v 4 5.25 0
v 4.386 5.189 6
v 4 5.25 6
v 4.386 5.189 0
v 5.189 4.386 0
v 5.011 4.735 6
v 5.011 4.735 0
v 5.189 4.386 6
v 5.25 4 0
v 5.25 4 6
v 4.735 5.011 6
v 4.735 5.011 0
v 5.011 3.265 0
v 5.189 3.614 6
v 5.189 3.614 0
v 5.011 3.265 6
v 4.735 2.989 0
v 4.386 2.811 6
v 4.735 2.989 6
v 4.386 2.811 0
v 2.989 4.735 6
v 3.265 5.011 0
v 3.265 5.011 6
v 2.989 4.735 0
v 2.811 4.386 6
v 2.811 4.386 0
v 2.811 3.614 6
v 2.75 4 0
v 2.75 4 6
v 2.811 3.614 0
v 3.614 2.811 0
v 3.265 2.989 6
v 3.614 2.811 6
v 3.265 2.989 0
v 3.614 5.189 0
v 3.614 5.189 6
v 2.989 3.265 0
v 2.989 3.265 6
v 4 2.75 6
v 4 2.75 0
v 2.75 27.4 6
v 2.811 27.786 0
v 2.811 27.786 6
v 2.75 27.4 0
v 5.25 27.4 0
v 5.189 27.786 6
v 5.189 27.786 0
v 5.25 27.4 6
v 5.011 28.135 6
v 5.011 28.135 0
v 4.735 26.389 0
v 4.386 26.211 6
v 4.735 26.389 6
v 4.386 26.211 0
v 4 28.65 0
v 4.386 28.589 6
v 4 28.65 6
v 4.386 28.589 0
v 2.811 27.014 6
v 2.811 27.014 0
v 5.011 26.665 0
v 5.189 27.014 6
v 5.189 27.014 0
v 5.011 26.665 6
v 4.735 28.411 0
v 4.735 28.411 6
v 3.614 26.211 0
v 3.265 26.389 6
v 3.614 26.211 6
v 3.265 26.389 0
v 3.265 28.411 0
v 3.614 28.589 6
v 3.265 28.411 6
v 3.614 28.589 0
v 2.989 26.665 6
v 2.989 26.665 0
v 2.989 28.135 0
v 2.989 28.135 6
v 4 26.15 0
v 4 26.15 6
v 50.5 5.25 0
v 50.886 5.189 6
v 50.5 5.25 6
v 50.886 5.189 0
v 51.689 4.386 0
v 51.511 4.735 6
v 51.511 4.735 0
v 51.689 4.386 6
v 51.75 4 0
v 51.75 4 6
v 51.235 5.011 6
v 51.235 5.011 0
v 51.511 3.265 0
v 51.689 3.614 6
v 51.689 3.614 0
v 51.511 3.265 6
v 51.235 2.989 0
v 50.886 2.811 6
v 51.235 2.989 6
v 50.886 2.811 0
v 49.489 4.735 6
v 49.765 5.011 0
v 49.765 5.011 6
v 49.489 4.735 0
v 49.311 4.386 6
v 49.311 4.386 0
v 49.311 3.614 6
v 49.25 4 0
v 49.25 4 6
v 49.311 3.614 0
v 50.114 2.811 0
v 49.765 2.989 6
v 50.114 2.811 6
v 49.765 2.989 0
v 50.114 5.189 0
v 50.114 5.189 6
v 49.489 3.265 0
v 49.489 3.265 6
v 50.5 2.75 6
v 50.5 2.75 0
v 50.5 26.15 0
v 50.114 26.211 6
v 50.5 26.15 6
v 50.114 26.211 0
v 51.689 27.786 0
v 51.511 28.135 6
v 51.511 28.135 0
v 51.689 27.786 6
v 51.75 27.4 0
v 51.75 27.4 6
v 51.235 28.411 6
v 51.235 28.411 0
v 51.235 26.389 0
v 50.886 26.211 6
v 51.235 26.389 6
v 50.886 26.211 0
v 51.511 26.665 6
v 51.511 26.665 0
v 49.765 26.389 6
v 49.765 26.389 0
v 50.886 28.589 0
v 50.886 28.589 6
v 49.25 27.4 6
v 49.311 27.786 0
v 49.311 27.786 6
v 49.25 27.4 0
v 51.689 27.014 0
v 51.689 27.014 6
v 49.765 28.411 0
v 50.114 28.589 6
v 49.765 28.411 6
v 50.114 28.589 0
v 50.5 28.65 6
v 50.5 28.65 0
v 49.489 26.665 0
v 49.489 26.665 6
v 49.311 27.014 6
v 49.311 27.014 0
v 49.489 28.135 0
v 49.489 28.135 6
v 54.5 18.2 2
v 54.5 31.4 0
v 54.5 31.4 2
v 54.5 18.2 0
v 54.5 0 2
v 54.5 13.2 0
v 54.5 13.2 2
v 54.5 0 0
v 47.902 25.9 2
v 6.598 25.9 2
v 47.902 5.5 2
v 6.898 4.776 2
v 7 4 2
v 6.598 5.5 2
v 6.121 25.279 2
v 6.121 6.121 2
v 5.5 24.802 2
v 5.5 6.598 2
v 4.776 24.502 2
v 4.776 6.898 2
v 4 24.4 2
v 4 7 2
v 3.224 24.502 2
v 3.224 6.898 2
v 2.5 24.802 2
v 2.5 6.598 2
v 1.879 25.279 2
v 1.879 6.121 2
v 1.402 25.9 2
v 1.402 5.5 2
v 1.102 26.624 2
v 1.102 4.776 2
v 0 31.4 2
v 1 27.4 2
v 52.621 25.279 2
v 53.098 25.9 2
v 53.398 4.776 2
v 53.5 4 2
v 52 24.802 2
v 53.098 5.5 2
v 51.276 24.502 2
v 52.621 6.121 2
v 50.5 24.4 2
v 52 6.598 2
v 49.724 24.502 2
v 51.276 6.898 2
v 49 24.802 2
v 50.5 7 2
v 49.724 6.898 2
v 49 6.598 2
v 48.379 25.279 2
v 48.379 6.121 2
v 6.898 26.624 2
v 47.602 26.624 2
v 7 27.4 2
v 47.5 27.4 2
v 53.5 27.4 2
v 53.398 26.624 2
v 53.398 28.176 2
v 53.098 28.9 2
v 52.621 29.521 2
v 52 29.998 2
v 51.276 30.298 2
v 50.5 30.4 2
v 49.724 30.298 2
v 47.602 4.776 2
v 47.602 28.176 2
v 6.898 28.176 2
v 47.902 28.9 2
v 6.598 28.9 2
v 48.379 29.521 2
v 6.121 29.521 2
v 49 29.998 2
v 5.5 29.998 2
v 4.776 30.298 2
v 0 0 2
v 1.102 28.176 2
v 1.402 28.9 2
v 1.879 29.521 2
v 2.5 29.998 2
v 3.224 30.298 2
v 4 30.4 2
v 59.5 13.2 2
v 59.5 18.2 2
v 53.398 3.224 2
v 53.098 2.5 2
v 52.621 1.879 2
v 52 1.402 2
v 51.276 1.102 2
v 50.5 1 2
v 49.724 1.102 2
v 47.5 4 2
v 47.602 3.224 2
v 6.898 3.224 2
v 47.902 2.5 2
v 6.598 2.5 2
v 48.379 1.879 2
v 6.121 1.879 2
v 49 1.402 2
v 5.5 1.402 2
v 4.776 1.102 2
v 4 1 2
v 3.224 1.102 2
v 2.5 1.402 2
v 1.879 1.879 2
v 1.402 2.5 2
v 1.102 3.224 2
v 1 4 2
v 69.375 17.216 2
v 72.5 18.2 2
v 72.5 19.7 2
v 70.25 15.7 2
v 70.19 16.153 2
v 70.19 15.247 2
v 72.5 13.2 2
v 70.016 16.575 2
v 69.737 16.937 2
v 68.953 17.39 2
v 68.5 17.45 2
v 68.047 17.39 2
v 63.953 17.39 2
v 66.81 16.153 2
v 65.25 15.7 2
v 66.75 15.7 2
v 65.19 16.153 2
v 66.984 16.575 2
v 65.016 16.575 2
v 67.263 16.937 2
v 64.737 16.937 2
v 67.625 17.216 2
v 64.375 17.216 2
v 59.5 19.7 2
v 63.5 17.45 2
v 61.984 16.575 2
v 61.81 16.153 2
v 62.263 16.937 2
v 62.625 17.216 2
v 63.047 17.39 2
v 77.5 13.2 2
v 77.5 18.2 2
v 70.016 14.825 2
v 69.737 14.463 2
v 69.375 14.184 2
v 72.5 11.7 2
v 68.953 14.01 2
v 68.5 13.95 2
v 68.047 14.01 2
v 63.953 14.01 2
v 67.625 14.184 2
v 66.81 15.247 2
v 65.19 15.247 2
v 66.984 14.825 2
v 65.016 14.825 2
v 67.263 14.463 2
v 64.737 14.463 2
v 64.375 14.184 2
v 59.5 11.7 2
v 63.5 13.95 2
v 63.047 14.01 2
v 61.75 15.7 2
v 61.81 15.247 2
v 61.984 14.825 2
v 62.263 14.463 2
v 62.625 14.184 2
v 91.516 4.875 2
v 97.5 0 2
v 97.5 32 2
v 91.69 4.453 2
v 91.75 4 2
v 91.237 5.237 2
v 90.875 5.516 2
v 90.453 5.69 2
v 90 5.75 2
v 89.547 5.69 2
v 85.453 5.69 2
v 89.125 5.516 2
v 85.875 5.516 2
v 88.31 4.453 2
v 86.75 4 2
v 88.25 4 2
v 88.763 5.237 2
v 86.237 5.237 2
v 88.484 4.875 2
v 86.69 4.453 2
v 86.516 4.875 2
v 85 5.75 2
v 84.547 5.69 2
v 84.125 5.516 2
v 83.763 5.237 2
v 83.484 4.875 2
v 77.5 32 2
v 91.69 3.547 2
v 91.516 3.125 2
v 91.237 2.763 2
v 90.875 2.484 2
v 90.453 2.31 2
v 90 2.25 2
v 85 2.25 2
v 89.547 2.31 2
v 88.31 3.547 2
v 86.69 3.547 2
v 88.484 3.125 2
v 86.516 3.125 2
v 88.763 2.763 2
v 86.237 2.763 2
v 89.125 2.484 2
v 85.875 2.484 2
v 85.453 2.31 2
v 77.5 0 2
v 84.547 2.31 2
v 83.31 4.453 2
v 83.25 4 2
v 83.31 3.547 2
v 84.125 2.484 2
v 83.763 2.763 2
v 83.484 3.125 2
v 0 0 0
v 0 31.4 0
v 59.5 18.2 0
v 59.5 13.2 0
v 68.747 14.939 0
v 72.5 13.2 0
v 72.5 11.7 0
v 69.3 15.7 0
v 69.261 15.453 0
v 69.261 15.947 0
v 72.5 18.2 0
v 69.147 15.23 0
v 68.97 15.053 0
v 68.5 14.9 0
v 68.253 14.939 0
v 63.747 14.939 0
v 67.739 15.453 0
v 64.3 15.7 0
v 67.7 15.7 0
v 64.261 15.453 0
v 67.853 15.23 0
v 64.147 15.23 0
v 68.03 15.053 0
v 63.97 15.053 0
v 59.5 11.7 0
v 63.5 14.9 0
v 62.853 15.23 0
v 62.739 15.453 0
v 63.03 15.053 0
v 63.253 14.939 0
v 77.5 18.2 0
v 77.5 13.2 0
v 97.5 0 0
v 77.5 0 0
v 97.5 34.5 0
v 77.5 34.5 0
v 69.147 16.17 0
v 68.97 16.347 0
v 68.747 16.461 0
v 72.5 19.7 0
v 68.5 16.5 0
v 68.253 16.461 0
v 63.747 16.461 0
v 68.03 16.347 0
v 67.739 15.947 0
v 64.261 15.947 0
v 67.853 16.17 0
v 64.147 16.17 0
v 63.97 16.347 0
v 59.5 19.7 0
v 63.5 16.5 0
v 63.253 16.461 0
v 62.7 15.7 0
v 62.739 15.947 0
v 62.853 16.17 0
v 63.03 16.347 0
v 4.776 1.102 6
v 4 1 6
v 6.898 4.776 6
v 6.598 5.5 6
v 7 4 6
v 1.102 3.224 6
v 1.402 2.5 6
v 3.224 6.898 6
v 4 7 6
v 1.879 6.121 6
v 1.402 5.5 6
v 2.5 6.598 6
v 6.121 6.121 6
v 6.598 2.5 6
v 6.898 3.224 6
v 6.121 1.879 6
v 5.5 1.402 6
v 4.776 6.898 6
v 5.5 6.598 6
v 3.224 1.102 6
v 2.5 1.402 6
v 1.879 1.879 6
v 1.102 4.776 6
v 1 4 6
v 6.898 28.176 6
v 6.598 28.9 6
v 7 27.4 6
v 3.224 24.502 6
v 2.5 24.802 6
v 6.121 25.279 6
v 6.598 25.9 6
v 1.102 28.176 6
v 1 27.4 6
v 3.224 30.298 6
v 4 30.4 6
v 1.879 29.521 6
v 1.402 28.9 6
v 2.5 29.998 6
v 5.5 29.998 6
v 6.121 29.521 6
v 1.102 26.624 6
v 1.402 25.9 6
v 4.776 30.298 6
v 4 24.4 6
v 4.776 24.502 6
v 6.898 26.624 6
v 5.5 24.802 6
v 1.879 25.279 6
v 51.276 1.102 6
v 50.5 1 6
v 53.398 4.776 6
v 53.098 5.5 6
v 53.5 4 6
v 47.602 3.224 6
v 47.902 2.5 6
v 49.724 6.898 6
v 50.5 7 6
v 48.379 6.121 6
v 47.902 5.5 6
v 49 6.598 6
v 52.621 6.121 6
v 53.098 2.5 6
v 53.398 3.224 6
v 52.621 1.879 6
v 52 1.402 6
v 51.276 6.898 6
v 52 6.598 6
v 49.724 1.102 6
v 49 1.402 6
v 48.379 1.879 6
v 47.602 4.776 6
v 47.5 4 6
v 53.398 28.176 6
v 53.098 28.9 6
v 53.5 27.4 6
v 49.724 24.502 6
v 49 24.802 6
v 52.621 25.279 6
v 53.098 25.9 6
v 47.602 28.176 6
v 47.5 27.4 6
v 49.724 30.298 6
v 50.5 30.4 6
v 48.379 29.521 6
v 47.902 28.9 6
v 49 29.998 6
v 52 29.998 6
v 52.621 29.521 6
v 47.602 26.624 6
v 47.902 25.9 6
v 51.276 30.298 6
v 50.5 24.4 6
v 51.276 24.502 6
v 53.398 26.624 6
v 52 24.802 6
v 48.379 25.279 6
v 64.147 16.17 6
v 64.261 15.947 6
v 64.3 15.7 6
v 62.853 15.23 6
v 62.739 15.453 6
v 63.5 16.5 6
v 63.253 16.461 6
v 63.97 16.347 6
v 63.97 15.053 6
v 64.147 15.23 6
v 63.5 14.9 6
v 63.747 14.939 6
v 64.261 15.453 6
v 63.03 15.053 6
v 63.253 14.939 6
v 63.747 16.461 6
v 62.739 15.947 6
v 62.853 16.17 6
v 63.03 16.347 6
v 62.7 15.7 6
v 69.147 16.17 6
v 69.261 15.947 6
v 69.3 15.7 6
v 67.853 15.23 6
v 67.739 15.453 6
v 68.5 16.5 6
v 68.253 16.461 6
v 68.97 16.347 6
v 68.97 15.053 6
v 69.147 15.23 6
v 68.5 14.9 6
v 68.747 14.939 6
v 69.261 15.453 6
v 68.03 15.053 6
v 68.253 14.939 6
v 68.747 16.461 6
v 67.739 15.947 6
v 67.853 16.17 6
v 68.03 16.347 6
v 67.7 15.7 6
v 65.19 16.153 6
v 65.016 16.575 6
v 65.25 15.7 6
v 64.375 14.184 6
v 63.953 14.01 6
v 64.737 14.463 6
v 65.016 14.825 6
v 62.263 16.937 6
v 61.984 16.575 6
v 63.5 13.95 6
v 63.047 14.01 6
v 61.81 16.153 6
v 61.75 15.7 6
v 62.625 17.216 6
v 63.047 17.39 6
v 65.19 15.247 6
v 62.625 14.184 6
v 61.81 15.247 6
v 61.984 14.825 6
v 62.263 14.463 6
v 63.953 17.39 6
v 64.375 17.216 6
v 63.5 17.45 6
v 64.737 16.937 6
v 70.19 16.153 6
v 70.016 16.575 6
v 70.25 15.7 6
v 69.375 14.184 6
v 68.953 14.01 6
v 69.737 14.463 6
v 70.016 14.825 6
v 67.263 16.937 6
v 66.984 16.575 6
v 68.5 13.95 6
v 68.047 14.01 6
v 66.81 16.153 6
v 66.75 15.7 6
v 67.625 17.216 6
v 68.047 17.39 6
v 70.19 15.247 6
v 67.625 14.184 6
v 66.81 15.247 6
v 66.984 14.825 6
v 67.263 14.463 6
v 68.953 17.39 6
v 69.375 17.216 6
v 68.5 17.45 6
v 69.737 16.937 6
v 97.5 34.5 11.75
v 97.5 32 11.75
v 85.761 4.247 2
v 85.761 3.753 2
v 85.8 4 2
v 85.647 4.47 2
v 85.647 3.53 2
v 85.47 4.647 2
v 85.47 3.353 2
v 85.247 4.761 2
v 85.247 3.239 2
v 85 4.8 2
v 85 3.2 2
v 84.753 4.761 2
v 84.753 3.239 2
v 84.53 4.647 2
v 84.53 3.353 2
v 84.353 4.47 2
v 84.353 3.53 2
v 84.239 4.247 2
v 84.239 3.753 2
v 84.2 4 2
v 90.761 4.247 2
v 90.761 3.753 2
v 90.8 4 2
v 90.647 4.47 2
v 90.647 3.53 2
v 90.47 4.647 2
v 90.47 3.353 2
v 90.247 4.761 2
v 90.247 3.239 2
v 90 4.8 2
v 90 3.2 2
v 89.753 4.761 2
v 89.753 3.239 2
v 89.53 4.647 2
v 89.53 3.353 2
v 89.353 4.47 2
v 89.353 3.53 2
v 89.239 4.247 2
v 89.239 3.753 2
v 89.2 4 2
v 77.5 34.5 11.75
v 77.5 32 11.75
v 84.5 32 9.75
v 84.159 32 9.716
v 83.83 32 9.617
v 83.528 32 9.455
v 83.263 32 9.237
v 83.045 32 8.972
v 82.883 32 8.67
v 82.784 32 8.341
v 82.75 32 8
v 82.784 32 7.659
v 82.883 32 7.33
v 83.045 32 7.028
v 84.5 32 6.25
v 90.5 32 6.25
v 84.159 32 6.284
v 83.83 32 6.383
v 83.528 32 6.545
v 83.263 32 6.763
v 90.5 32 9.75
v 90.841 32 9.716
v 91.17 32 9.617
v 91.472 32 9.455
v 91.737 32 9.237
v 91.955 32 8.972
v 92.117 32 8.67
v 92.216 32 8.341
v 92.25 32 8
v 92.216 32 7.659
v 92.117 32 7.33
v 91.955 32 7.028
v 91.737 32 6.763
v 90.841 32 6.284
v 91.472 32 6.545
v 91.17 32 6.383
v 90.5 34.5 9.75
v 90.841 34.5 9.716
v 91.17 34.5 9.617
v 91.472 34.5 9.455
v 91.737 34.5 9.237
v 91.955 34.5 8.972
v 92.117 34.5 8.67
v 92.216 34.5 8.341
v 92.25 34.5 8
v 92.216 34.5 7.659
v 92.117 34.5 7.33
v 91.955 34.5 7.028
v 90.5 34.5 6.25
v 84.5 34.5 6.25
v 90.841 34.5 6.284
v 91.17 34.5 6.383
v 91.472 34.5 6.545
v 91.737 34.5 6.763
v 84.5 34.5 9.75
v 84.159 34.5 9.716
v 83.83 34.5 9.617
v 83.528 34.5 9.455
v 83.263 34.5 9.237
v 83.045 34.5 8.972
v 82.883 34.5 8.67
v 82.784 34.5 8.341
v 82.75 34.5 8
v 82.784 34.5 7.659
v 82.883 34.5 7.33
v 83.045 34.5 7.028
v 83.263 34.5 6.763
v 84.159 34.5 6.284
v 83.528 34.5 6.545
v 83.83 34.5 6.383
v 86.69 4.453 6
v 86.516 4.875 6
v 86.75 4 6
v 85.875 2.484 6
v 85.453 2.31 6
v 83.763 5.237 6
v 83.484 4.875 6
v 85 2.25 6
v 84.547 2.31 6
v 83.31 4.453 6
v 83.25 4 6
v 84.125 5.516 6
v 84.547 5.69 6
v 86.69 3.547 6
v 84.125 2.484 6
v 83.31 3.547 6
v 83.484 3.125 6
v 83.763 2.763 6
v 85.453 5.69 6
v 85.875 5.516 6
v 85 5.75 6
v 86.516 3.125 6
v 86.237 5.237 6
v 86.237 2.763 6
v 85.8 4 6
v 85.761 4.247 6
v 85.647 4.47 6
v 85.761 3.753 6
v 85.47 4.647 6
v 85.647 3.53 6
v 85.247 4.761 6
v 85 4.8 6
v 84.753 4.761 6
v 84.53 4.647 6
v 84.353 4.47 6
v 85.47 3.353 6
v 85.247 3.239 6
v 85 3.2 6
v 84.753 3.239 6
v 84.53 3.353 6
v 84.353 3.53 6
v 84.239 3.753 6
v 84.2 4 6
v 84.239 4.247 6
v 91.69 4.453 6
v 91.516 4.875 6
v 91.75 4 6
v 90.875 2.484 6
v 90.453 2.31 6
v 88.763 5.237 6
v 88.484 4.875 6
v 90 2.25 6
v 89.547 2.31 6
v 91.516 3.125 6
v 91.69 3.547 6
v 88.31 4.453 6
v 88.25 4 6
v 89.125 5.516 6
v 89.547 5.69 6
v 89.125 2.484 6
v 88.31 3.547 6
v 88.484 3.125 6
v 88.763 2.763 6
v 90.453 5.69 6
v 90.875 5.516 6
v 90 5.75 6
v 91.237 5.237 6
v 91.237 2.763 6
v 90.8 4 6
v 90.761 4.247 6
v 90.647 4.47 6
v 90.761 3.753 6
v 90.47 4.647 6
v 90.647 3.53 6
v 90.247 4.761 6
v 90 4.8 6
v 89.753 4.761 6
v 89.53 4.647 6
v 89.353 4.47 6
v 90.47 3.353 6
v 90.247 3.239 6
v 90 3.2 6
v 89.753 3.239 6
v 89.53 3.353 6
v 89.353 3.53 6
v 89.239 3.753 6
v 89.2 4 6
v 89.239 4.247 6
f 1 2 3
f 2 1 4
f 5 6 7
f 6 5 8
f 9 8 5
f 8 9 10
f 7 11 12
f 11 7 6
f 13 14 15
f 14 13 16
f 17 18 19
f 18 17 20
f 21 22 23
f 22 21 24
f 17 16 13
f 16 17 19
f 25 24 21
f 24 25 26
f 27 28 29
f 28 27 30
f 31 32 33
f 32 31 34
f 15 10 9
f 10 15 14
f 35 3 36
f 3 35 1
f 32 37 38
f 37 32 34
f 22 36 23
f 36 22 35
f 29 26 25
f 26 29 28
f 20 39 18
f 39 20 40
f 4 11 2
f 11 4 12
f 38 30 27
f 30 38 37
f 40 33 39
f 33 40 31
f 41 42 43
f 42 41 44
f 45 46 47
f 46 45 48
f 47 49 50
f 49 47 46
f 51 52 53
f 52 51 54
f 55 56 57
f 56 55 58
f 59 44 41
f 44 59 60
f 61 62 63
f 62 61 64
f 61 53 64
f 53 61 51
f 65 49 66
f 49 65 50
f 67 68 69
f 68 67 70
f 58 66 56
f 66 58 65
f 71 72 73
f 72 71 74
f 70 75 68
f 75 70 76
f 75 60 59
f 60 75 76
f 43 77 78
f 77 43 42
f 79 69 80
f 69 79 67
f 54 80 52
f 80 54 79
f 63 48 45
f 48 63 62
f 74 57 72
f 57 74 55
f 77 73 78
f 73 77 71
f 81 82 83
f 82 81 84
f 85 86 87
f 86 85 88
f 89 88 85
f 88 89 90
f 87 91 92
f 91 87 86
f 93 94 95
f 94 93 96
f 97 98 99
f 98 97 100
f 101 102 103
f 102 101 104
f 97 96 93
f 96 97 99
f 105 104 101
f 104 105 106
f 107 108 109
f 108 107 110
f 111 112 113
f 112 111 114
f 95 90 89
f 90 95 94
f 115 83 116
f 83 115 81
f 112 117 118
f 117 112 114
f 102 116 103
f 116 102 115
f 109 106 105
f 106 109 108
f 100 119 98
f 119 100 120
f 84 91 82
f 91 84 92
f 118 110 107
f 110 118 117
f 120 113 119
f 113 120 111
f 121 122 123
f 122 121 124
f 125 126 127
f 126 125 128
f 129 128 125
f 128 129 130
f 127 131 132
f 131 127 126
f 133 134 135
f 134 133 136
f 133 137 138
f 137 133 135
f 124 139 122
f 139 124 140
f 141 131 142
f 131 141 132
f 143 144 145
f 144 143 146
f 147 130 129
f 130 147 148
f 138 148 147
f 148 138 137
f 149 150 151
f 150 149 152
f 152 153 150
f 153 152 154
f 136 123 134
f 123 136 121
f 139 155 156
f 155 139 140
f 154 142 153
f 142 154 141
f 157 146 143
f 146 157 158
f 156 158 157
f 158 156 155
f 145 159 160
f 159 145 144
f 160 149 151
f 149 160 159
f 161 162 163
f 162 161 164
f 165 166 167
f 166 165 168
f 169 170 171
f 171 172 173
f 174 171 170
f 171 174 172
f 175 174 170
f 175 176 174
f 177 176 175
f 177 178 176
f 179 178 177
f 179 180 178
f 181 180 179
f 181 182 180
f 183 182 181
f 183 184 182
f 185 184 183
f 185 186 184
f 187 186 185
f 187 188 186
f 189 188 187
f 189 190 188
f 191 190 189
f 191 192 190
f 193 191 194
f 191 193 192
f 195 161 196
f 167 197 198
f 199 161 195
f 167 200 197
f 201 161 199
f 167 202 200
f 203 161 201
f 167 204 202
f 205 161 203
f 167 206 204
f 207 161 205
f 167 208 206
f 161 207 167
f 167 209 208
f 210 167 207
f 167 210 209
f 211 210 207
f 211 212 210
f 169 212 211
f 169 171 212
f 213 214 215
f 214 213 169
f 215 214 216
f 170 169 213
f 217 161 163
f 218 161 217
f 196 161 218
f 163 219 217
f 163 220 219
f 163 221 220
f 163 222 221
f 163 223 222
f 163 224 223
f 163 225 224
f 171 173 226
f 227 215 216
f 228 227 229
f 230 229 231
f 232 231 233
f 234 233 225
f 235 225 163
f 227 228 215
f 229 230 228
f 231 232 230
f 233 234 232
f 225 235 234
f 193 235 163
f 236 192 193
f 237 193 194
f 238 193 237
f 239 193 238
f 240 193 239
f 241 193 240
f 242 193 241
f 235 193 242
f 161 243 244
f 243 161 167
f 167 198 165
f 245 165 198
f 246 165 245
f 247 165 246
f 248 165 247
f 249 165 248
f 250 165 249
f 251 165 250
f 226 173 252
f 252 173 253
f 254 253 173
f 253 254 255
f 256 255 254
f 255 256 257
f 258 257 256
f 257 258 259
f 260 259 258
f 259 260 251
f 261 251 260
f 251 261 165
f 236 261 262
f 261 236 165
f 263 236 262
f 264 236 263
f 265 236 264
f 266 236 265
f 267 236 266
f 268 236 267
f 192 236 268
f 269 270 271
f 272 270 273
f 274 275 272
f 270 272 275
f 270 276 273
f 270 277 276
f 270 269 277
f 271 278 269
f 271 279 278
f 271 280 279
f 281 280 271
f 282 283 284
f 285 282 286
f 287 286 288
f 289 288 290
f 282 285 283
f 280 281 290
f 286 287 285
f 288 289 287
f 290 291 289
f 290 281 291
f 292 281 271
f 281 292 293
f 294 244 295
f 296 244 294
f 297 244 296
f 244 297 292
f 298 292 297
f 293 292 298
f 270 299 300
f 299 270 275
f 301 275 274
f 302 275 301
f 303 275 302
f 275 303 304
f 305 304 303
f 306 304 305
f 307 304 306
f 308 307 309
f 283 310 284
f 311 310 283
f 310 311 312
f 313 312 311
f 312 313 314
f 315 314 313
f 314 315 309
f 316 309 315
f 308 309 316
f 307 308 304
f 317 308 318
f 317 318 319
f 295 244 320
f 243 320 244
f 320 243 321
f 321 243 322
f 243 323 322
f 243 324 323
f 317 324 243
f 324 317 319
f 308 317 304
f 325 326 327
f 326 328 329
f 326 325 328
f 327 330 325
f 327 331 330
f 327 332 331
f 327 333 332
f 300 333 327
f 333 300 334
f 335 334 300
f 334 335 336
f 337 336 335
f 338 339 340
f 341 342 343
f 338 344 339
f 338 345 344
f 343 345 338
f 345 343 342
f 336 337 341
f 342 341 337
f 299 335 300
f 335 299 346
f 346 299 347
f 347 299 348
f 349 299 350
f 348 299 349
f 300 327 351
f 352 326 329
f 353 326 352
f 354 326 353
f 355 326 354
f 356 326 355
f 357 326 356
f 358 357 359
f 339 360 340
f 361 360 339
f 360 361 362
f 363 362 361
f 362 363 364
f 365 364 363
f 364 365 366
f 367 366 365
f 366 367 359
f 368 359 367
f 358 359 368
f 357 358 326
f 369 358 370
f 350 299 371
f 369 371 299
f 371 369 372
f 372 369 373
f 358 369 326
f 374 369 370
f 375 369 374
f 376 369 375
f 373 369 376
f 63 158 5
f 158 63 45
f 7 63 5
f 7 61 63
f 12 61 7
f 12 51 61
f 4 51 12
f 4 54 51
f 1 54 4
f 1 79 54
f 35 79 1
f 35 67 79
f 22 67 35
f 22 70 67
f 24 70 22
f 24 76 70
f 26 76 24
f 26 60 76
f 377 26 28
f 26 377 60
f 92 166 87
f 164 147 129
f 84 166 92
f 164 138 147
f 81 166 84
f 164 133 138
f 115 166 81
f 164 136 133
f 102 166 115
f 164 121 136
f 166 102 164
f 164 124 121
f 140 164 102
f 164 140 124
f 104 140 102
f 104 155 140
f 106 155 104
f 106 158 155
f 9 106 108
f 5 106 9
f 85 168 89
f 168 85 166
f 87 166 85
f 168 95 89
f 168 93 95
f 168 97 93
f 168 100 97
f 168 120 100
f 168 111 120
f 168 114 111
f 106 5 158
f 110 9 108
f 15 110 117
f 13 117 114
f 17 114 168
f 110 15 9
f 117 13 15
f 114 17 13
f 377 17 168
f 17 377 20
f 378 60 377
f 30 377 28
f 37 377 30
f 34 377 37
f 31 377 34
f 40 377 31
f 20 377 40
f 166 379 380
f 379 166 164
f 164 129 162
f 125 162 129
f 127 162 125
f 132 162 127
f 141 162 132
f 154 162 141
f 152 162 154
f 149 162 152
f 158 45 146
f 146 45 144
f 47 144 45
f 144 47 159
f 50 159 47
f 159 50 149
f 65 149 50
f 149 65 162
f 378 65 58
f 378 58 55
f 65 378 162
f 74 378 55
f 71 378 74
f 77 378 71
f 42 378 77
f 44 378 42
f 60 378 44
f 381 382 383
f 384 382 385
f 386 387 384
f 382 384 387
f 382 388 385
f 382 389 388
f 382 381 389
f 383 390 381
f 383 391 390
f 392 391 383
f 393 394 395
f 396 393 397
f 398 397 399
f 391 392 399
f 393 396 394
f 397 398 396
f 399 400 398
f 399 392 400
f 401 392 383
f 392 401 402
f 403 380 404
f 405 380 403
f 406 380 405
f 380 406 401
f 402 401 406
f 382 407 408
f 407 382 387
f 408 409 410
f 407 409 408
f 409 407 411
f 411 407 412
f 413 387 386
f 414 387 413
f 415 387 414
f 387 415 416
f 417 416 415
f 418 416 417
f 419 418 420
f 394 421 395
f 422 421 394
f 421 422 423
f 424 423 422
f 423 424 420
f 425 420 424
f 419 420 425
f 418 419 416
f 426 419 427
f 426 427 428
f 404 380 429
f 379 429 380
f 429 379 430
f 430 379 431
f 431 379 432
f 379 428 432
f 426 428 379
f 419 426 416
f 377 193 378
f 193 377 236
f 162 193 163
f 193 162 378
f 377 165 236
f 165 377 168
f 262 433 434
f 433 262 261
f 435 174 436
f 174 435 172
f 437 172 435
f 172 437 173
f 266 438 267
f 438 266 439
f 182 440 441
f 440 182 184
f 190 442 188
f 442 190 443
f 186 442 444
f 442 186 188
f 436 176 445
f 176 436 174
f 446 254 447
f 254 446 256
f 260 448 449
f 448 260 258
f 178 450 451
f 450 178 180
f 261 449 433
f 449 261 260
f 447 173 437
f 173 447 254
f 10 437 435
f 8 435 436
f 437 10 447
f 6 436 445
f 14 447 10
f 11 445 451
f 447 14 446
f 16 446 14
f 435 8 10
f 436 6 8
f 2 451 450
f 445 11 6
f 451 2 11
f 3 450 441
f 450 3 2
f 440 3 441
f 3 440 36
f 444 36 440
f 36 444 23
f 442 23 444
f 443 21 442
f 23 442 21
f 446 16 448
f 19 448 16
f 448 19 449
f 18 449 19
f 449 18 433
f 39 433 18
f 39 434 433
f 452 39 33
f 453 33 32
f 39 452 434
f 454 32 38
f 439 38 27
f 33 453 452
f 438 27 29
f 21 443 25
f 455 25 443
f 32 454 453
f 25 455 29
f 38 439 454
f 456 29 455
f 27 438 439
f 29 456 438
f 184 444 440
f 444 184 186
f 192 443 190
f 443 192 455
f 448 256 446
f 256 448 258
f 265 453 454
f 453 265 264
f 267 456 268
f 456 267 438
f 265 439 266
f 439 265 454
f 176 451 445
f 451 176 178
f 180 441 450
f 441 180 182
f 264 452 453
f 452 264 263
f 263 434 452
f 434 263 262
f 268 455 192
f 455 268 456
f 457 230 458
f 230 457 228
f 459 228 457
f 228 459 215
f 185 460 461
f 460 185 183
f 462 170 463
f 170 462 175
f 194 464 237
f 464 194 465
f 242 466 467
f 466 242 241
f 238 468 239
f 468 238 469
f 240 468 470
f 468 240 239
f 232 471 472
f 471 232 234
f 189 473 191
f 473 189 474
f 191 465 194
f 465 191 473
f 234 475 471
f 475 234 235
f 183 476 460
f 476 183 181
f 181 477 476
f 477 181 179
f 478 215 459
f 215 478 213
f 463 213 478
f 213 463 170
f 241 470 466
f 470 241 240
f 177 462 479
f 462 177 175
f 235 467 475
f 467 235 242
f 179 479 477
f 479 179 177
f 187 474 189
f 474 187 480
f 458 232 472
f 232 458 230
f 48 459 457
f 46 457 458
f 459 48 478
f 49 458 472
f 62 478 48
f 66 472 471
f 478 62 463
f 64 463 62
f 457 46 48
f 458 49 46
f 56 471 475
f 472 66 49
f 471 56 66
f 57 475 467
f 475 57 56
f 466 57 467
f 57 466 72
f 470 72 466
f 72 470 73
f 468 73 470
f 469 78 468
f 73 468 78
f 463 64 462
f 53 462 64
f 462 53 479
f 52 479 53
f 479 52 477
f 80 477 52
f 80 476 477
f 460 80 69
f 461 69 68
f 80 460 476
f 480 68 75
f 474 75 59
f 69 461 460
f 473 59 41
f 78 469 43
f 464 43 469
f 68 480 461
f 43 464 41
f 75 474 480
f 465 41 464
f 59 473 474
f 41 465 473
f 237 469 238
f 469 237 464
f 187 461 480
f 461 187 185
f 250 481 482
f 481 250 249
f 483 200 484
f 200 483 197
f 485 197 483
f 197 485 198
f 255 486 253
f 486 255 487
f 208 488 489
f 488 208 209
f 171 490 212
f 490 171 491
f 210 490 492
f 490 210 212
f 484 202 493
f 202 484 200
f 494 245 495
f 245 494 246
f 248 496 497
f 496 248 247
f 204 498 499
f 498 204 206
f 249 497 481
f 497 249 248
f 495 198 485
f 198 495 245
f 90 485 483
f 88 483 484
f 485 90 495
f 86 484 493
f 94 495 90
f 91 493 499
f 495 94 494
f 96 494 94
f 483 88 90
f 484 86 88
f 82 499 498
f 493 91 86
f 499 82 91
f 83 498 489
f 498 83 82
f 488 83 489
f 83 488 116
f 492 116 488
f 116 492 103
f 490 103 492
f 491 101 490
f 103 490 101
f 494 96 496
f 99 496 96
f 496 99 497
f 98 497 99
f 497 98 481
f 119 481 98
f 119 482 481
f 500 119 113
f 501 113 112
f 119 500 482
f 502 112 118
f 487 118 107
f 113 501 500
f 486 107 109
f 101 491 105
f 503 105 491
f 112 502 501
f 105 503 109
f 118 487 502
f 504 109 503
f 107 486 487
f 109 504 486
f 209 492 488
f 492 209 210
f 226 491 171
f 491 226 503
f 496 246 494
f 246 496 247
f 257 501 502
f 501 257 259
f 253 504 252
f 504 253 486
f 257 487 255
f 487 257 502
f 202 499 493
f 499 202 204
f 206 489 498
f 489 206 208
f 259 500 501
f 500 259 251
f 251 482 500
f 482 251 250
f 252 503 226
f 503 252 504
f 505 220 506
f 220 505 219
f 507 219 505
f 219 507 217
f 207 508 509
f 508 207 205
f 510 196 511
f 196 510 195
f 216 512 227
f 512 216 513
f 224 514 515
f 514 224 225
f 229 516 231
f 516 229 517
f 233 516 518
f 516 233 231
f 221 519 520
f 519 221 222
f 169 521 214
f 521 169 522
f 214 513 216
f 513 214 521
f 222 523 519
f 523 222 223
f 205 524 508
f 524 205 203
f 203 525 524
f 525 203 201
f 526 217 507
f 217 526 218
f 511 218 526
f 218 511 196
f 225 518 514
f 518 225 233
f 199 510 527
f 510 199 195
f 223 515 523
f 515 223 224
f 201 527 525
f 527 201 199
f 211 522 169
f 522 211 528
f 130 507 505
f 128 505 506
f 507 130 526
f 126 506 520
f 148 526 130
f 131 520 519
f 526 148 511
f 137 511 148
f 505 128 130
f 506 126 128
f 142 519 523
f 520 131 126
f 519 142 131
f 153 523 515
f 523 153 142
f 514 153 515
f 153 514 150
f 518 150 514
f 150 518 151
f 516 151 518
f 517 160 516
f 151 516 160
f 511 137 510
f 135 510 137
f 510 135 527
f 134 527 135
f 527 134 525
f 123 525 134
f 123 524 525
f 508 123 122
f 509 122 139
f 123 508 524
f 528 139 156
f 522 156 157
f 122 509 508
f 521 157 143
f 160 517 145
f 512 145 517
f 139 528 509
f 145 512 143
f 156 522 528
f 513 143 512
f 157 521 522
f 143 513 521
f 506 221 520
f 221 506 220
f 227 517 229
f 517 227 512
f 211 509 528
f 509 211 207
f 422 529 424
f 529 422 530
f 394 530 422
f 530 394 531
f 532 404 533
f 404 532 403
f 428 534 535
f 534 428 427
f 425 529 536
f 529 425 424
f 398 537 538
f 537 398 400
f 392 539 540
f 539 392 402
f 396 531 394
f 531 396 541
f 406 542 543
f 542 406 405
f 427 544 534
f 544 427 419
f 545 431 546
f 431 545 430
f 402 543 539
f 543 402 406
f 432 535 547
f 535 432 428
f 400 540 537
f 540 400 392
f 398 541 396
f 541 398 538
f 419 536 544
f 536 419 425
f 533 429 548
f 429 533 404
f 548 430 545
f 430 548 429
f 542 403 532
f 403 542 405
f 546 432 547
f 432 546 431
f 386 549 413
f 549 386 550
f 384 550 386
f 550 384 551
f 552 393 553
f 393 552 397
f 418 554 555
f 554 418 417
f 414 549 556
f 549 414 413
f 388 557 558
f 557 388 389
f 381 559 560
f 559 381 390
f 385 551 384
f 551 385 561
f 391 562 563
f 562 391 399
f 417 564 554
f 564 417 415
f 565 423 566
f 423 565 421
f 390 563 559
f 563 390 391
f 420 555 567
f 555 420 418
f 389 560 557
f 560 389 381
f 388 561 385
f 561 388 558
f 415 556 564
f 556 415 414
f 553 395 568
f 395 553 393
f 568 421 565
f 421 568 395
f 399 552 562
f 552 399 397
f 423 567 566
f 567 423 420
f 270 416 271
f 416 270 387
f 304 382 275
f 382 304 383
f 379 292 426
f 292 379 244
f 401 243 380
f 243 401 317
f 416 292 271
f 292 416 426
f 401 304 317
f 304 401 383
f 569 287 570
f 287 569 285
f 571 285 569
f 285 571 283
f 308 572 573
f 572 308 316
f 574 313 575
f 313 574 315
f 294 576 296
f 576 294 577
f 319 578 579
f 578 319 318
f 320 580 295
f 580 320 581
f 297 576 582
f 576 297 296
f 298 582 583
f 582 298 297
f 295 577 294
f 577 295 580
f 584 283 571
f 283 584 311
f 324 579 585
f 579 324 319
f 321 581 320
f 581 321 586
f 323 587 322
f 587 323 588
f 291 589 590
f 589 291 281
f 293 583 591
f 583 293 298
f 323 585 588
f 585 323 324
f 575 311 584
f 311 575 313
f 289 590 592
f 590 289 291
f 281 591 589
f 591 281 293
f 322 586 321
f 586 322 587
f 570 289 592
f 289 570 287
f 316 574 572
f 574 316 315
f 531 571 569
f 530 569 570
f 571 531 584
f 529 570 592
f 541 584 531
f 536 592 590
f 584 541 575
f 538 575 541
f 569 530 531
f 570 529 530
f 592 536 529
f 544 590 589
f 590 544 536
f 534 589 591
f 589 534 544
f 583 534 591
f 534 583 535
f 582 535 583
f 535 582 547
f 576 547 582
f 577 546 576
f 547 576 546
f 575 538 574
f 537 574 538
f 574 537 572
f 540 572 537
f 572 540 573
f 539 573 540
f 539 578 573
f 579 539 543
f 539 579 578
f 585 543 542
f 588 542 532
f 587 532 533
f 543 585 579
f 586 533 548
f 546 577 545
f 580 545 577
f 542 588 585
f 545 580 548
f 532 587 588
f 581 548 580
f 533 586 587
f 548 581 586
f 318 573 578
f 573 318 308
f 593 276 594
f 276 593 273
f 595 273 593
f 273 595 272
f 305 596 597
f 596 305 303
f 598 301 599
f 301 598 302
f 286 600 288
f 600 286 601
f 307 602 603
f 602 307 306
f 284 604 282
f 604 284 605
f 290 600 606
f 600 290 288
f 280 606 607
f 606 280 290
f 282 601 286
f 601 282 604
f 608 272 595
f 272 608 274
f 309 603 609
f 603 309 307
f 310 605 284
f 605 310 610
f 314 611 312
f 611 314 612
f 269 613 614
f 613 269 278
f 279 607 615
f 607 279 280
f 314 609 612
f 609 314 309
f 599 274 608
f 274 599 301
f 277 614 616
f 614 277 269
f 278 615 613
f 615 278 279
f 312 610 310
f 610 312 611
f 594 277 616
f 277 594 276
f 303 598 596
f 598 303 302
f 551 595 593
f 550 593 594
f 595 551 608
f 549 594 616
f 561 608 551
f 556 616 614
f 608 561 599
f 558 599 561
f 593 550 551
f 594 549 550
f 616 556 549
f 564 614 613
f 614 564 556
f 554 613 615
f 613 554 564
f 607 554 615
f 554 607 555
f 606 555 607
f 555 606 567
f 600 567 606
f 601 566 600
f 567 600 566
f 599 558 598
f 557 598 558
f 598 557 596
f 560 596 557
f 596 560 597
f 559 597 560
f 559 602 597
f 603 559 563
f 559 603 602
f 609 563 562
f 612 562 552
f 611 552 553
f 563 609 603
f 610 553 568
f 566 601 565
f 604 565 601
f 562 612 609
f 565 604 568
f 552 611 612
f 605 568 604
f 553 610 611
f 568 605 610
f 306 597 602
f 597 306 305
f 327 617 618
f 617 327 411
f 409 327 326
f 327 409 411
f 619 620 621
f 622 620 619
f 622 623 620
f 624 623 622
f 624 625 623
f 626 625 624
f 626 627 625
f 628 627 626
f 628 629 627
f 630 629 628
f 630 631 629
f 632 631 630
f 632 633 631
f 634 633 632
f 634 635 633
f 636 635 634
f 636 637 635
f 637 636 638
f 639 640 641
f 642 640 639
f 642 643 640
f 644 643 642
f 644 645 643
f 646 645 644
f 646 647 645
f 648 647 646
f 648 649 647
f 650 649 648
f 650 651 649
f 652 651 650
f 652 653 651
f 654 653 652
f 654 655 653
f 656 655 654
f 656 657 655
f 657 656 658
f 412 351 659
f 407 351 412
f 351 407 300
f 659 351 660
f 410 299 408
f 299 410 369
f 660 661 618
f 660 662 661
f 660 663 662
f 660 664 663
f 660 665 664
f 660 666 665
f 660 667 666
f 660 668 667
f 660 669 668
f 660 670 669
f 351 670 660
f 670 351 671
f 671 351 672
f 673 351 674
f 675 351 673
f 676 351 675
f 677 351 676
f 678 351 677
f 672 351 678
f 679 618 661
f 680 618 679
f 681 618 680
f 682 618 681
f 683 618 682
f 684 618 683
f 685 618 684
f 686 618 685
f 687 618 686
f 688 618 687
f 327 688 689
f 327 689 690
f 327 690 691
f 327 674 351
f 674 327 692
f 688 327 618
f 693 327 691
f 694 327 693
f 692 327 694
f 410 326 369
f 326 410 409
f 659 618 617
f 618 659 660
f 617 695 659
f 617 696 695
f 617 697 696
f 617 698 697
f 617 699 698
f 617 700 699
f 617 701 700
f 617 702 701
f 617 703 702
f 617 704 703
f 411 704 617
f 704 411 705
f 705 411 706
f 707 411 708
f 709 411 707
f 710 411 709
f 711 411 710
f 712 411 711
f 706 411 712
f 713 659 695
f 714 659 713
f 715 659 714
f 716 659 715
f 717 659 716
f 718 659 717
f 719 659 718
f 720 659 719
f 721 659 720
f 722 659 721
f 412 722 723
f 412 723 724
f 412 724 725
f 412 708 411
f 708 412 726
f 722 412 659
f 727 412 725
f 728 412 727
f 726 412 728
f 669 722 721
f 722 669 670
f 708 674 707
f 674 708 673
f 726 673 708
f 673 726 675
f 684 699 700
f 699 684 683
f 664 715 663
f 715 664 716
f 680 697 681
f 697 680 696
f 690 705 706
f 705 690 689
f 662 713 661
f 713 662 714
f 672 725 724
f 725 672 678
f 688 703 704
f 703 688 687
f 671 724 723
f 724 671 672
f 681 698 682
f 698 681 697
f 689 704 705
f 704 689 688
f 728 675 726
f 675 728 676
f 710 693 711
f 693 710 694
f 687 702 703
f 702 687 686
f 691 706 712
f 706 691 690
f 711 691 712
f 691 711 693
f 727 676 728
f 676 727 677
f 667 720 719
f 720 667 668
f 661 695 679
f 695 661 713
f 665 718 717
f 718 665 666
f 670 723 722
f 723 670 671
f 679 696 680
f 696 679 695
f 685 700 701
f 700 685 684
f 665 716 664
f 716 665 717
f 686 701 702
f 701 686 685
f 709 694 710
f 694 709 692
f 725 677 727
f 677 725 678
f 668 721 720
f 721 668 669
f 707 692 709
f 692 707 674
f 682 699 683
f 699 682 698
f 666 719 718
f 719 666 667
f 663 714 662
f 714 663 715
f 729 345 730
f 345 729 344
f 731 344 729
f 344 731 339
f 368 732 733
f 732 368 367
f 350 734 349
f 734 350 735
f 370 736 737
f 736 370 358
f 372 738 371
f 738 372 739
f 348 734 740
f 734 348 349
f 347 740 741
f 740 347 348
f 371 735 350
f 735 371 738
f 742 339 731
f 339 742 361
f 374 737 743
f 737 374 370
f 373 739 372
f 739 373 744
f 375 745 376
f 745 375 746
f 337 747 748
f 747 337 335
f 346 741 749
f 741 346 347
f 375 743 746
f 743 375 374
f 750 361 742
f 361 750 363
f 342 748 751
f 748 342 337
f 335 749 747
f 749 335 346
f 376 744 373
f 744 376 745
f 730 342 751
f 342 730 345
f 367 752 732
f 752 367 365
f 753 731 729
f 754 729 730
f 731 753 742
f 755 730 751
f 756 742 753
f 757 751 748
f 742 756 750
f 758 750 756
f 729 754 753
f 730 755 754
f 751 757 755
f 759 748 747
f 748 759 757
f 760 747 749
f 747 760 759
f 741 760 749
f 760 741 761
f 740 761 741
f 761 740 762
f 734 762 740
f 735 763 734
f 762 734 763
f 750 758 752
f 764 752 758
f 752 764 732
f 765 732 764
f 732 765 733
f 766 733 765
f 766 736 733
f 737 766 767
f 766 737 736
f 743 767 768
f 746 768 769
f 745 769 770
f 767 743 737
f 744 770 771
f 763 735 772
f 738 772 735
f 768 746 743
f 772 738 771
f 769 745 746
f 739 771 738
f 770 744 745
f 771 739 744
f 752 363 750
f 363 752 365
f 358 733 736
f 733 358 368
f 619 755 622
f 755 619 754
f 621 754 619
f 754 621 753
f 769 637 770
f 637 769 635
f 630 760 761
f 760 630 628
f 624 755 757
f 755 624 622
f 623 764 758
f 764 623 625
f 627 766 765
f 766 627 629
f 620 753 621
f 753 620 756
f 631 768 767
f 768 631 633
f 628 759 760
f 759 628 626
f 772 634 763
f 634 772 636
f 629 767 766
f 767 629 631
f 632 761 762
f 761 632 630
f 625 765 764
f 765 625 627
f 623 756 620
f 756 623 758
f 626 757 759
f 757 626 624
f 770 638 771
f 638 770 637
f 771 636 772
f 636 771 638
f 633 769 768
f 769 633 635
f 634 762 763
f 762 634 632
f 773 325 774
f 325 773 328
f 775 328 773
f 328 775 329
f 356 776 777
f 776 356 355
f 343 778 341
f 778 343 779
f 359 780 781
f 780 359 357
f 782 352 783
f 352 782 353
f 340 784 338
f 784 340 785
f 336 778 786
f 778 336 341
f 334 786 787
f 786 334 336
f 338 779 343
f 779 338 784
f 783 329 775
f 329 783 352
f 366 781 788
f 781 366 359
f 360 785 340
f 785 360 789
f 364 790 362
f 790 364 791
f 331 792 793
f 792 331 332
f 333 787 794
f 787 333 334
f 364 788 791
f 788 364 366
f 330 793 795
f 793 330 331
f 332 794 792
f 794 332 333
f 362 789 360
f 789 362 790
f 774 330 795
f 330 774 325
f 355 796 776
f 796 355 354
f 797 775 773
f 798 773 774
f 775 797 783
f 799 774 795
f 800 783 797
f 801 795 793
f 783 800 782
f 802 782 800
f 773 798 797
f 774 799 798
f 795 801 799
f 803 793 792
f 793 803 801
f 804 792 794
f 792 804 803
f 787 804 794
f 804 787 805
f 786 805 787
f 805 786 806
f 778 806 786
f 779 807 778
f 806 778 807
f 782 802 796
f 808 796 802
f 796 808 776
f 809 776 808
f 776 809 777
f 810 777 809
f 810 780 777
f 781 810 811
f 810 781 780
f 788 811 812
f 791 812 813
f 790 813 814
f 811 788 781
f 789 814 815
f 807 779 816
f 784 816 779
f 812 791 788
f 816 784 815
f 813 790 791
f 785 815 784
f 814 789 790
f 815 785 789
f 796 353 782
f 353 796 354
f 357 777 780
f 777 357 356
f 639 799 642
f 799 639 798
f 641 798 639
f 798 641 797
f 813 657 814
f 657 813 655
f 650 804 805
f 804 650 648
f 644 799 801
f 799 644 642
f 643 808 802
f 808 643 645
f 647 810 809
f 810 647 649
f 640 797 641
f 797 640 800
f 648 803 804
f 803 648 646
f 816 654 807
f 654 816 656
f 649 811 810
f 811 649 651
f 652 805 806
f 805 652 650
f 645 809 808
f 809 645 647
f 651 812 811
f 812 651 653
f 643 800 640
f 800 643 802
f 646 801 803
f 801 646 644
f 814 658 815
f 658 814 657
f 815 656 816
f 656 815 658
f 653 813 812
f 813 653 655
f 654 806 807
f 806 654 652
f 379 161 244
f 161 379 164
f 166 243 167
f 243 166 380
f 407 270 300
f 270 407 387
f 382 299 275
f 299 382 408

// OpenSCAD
// ============================================================
// Standoff + Port Test Piece — USB-C Board + ESP32
//
// Section 1 (left)  : ESP32 — 4× M3 standoffs, 46.5 × 23.4 mm
// Section 2 (middle): USB-C board — 2× M2 standoffs, 5 mm apart
// Section 3 (right) : USB-C port L-piece — simulates enclosure wall
//     • push USB-C board onto the 2 standoffs (connector toward wall)
//     • PCB edge should sit flush with wall inner face
//     • connector should fit through the stadium hole
//
// Print flat on bed (base down). No supports needed.
// ============================================================

// ---- Parameters shared with electronics_enclosure.scad ----
esp_mx  = 46.5;  // ESP32 hole spacing X
esp_my  = 23.4;  // ESP32 hole spacing Y
esp_od  =  6.0;  // ESP32 standoff outer ⌀
esp_sd  =  2.5;  // M3 self-tap pilot

usbc_bmx =  5.0;  // USB-C board hole spacing
usbc_bod =  3.5;  // USB-C standoff outer ⌀
usbc_bsd =  1.6;  // M2 self-tap pilot

usbc_w   =  9.5;  // USB-C port opening width
usbc_h   =  3.5;  // USB-C port opening height (stadium: r = h/2 = 1.75)

// USB-C board geometry (measured)
usbc_hole_to_edge = 28.0;  // standoff centre → PCB edge (connector side)
usbc_pcb_to_hole  =  2.0;  // connector centre above PCB surface (adjust if off)

// ---- Test piece params ----
base_t = 2.0;   // base plate thickness
so_h   = 4.0;   // standoff height above base
mg     = 4.0;   // margin around patterns
gap    = 5.0;   // gap between sections
wall_t = 2.5;   // enclosure wall thickness (simulated)

eps = 0.01;

// ---- Derived ----
esp_bw = esp_mx + 2*mg;           // 54.5 mm
esp_bd = esp_my + 2*mg;           // 31.4 mm

usbc_bw = usbc_bmx + 2*mg;        // 13.0 mm
usbc_bd = 2*mg;                   //  8.0 mm
usbc_ox = esp_bw + gap;           // 59.5 mm
usbc_oy = (esp_bd - usbc_bd) / 2; // 11.7 mm (centred on ESP32 Y)

l_ox = usbc_ox + usbc_bw + gap;   // 77.5 mm (X start of L-piece)

// L-piece: wall at the far Y edge, board area between wall and front
//   wall inner face at Y = l_base_d
//   standoffs 28 mm in from inner face → Y = l_base_d - usbc_hole_to_edge
l_base_d = usbc_hole_to_edge + mg; // 32.0 mm (depth of base plate)
l_total_w = 20.0;                  // width (X) — enough for 9.5 mm hole
l_so_y    = mg;                    // = l_base_d - usbc_hole_to_edge = 4.0 mm
l_so_x1   = l_total_w/2 - usbc_bmx/2;  // 7.5 mm
l_so_x2   = l_total_w/2 + usbc_bmx/2;  // 12.5 mm

l_hole_z  = base_t + so_h + usbc_pcb_to_hole;  // 8.0 mm
l_wall_h  = l_hole_z + usbc_h/2 + 2.0;         // 11.75 mm

// ============================================================
// Stadium profile (USB-C shape) — 2D, XY plane, centred at origin
// ============================================================
module usbc_stadium() {
    r = usbc_h / 2;
    hull() {
        translate([-(usbc_w/2 - r), 0]) circle(r=r, $fn=32);
        translate([ (usbc_w/2 - r), 0]) circle(r=r, $fn=32);
    }
}

// ============================================================
// SECTION 1 — ESP32 standoffs
// ============================================================
difference() {
    cube([esp_bw, esp_bd, base_t]);
    for (sx = [-1,1]) for (sy = [-1,1])
        translate([esp_bw/2 + sx*esp_mx/2, esp_bd/2 + sy*esp_my/2, -eps])
            cylinder(d=esp_sd, h=base_t + eps*2, $fn=20);
}
for (sx = [-1,1]) for (sy = [-1,1]) {
    px = esp_bw/2 + sx*esp_mx/2;
    py = esp_bd/2 + sy*esp_my/2;
    difference() {
        translate([px, py, base_t])
            cylinder(d=esp_od, h=so_h, $fn=24);
        translate([px, py, -eps])
            cylinder(d=esp_sd, h=base_t + so_h + eps*2, $fn=20);
    }
}

// ============================================================
// Bridge 1 — ESP32 → USB-C standoff section
// ============================================================
bridge_d = 5.0;
translate([esp_bw - eps, (esp_bd - bridge_d)/2, 0])
    cube([gap + 2*eps, bridge_d, base_t]);

// ============================================================
// SECTION 2 — USB-C board standoffs
// ============================================================
translate([usbc_ox, usbc_oy, 0]) {
    difference() {
        cube([usbc_bw, usbc_bd, base_t]);
        for (sx = [-1,1])
            translate([usbc_bw/2 + sx*usbc_bmx/2, usbc_bd/2, -eps])
                cylinder(d=usbc_bsd, h=base_t + eps*2, $fn=20);
    }
    for (sx = [-1,1]) {
        px = usbc_bw/2 + sx*usbc_bmx/2;
        py = usbc_bd/2;
        difference() {
            translate([px, py, base_t])
                cylinder(d=usbc_bod, h=so_h, $fn=24);
            translate([px, py, -eps])
                cylinder(d=usbc_bsd, h=base_t + so_h + eps*2, $fn=20);
        }
    }
}

// ============================================================
// Bridge 2 — USB-C standoff section → L-piece
// ============================================================
translate([usbc_ox + usbc_bw - eps, (esp_bd - bridge_d)/2, 0])
    cube([gap + 2*eps, bridge_d, base_t]);

// ============================================================
// SECTION 3 — USB-C port L-piece
//
// Base plate covers the board area.
// Wall stands at the far Y edge — simulates the enclosure back wall.
// Hole is cut through the wall at the correct height.
//
// Usage:
//   Orient the USB-C board with connector pointing toward the wall (+Y).
//   Place mounting holes onto the 2 standoffs.
//   → PCB edge should be flush with wall inner face
//   → connector should pass through the hole
//   If height is off, adjust usbc_pcb_to_hole in both SCAD files.
// ============================================================
translate([l_ox, 0, 0]) {
    difference() {
        union() {
            // Base plate (board area)
            cube([l_total_w, l_base_d, base_t]);
            // Standing wall at far Y (inner face at Y = l_base_d)
            translate([0, l_base_d, 0])
                cube([l_total_w, wall_t, l_wall_h]);
        }
        // USB-C stadium hole — through wall in +Y direction
        // Start just inside inner face, extrude through full wall thickness
        translate([l_total_w/2, l_base_d - eps, l_hole_z])
        rotate([-90, 0, 0])
        linear_extrude(height = wall_t + 2*eps)
            usbc_stadium();
    }

    // 2 standoffs for USB-C board (usbc_hole_to_edge mm from wall inner face)
    for (px = [l_so_x1, l_so_x2]) {
        difference() {
            translate([px, l_so_y, base_t])
                cylinder(d=usbc_bod, h=so_h, $fn=24);
            translate([px, l_so_y, -eps])
                cylinder(d=usbc_bsd, h=base_t + so_h + eps*2, $fn=20);
        }
    }
}

// ============================================================
// Key dimensions
// Section 1 — ESP32     : 46.5 × 23.4 mm, ⌀6 mm boss, M3 pilot ⌀2.5 mm
// Section 2 — USB-C SO  : 5 mm apart, ⌀3.5 mm boss, M2 pilot ⌀1.6 mm
// Section 3 — port wall : 9.5 × 3.5 mm stadium, z = 8 mm, wall = 2.5 mm thick
//             standoffs 28 mm from wall inner face, board flush when correct
// Total footprint        : ~97.5 × 34.5 mm
// ============================================================
